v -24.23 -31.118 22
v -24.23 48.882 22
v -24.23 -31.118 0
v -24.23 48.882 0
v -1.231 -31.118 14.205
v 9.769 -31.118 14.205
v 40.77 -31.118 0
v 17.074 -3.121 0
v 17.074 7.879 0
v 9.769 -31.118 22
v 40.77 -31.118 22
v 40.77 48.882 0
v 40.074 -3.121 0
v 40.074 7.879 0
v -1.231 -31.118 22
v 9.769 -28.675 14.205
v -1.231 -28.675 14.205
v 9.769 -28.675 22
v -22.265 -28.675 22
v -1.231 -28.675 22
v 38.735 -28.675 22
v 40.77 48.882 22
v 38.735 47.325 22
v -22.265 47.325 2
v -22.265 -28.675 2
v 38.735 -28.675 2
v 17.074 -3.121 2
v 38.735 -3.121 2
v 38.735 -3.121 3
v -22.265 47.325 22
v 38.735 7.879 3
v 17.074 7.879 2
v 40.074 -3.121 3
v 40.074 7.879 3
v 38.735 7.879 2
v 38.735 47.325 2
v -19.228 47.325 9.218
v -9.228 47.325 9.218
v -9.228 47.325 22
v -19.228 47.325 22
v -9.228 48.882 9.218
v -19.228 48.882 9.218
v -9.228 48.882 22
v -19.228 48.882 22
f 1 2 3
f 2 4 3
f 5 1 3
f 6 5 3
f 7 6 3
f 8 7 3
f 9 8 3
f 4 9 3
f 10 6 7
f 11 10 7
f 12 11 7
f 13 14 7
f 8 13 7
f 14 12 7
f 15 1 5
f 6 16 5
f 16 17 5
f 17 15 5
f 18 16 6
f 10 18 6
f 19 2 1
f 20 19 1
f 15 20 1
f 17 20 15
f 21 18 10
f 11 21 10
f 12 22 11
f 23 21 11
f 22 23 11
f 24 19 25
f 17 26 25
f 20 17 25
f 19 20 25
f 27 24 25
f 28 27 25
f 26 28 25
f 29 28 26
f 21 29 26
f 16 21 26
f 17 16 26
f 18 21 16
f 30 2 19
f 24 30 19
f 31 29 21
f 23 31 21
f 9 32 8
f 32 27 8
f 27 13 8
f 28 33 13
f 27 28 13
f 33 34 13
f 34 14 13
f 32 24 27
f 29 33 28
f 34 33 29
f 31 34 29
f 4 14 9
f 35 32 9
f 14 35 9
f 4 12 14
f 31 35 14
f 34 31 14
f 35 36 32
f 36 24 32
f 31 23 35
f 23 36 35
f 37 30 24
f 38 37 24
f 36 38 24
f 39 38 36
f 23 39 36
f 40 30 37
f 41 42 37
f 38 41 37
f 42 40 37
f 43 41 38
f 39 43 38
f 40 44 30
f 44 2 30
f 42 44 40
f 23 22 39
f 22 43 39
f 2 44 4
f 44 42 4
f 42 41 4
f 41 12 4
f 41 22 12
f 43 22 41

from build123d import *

# Parameters (mm, degrees)
SCHIZZO1_W                   = 65
SCHIZZO1_H                   = 80
ESTRUSIONE_ESTRUSIONE1_DEPTH = 22
SCHIZZO2_W                   = 61
SCHIZZO2_H                   = 76
TAGLIO_ESTRUSIONE1_DEPTH     = 20
SCHIZZO4_W                   = 11
SCHIZZO4_H                   = 8.5
TAGLIO_ESTRUSIONE2_DEPTH     = 3
SCHIZZO5_W                   = 23
SCHIZZO5_H                   = 11
TAGLIO_ESTRUSIONE3_DEPTH     = 3
SCHIZZO6_W                   = 10
SCHIZZO6_H                   = 14
TAGLIO_ESTRUSIONE4_DEPTH     = 3


with BuildPart() as part:
    # Schizzo1 → Estrusione-Estrusione1 (new body)
    with BuildSketch(Plane.XY):
        with Locations((8.270457538, 8.882113821)):
            Rectangle(SCHIZZO1_W, SCHIZZO1_H)
    extrude(amount=ESTRUSIONE_ESTRUSIONE1_DEPTH)

    # Schizzo2 → Taglio-Estrusione1 (cut)
    with BuildSketch(Plane.XY.offset(22)):
        with Locations((8.235197237, 9.324988178)):
            Rectangle(SCHIZZO2_W, SCHIZZO2_H)
    extrude(amount=-TAGLIO_ESTRUSIONE1_DEPTH, mode=Mode.SUBTRACT)

    # Schizzo4 → Taglio-Estrusione2 (cut)
    with BuildSketch(Plane.XZ.offset(31.117886179)):
        with Locations((4.269357769, 18.454892341)):
            Rectangle(SCHIZZO4_W, SCHIZZO4_H)
    extrude(amount=-TAGLIO_ESTRUSIONE2_DEPTH, mode=Mode.SUBTRACT)

    # Schizzo5 → Taglio-Estrusione3 (cut)
    with BuildSketch(Plane(origin=(0, 0, 0), x_dir=(-1, 0, 0), z_dir=(0, 0, -1))):
        with Locations((-28.573968875, 2.379418808)):
            Rectangle(SCHIZZO5_W, SCHIZZO5_H)
    extrude(amount=-TAGLIO_ESTRUSIONE3_DEPTH, mode=Mode.SUBTRACT)

    # Schizzo6 → Taglio-Estrusione4 (cut)
    with BuildSketch(Plane(origin=(0, 48.882113821, 0), x_dir=(1, 0, 0), z_dir=(0, 1, 0))):
        with Locations((-14.227965798, -16.217758031)):
            Rectangle(SCHIZZO6_W, SCHIZZO6_H)
    extrude(amount=-TAGLIO_ESTRUSIONE4_DEPTH, mode=Mode.SUBTRACT)


solid = part.part
